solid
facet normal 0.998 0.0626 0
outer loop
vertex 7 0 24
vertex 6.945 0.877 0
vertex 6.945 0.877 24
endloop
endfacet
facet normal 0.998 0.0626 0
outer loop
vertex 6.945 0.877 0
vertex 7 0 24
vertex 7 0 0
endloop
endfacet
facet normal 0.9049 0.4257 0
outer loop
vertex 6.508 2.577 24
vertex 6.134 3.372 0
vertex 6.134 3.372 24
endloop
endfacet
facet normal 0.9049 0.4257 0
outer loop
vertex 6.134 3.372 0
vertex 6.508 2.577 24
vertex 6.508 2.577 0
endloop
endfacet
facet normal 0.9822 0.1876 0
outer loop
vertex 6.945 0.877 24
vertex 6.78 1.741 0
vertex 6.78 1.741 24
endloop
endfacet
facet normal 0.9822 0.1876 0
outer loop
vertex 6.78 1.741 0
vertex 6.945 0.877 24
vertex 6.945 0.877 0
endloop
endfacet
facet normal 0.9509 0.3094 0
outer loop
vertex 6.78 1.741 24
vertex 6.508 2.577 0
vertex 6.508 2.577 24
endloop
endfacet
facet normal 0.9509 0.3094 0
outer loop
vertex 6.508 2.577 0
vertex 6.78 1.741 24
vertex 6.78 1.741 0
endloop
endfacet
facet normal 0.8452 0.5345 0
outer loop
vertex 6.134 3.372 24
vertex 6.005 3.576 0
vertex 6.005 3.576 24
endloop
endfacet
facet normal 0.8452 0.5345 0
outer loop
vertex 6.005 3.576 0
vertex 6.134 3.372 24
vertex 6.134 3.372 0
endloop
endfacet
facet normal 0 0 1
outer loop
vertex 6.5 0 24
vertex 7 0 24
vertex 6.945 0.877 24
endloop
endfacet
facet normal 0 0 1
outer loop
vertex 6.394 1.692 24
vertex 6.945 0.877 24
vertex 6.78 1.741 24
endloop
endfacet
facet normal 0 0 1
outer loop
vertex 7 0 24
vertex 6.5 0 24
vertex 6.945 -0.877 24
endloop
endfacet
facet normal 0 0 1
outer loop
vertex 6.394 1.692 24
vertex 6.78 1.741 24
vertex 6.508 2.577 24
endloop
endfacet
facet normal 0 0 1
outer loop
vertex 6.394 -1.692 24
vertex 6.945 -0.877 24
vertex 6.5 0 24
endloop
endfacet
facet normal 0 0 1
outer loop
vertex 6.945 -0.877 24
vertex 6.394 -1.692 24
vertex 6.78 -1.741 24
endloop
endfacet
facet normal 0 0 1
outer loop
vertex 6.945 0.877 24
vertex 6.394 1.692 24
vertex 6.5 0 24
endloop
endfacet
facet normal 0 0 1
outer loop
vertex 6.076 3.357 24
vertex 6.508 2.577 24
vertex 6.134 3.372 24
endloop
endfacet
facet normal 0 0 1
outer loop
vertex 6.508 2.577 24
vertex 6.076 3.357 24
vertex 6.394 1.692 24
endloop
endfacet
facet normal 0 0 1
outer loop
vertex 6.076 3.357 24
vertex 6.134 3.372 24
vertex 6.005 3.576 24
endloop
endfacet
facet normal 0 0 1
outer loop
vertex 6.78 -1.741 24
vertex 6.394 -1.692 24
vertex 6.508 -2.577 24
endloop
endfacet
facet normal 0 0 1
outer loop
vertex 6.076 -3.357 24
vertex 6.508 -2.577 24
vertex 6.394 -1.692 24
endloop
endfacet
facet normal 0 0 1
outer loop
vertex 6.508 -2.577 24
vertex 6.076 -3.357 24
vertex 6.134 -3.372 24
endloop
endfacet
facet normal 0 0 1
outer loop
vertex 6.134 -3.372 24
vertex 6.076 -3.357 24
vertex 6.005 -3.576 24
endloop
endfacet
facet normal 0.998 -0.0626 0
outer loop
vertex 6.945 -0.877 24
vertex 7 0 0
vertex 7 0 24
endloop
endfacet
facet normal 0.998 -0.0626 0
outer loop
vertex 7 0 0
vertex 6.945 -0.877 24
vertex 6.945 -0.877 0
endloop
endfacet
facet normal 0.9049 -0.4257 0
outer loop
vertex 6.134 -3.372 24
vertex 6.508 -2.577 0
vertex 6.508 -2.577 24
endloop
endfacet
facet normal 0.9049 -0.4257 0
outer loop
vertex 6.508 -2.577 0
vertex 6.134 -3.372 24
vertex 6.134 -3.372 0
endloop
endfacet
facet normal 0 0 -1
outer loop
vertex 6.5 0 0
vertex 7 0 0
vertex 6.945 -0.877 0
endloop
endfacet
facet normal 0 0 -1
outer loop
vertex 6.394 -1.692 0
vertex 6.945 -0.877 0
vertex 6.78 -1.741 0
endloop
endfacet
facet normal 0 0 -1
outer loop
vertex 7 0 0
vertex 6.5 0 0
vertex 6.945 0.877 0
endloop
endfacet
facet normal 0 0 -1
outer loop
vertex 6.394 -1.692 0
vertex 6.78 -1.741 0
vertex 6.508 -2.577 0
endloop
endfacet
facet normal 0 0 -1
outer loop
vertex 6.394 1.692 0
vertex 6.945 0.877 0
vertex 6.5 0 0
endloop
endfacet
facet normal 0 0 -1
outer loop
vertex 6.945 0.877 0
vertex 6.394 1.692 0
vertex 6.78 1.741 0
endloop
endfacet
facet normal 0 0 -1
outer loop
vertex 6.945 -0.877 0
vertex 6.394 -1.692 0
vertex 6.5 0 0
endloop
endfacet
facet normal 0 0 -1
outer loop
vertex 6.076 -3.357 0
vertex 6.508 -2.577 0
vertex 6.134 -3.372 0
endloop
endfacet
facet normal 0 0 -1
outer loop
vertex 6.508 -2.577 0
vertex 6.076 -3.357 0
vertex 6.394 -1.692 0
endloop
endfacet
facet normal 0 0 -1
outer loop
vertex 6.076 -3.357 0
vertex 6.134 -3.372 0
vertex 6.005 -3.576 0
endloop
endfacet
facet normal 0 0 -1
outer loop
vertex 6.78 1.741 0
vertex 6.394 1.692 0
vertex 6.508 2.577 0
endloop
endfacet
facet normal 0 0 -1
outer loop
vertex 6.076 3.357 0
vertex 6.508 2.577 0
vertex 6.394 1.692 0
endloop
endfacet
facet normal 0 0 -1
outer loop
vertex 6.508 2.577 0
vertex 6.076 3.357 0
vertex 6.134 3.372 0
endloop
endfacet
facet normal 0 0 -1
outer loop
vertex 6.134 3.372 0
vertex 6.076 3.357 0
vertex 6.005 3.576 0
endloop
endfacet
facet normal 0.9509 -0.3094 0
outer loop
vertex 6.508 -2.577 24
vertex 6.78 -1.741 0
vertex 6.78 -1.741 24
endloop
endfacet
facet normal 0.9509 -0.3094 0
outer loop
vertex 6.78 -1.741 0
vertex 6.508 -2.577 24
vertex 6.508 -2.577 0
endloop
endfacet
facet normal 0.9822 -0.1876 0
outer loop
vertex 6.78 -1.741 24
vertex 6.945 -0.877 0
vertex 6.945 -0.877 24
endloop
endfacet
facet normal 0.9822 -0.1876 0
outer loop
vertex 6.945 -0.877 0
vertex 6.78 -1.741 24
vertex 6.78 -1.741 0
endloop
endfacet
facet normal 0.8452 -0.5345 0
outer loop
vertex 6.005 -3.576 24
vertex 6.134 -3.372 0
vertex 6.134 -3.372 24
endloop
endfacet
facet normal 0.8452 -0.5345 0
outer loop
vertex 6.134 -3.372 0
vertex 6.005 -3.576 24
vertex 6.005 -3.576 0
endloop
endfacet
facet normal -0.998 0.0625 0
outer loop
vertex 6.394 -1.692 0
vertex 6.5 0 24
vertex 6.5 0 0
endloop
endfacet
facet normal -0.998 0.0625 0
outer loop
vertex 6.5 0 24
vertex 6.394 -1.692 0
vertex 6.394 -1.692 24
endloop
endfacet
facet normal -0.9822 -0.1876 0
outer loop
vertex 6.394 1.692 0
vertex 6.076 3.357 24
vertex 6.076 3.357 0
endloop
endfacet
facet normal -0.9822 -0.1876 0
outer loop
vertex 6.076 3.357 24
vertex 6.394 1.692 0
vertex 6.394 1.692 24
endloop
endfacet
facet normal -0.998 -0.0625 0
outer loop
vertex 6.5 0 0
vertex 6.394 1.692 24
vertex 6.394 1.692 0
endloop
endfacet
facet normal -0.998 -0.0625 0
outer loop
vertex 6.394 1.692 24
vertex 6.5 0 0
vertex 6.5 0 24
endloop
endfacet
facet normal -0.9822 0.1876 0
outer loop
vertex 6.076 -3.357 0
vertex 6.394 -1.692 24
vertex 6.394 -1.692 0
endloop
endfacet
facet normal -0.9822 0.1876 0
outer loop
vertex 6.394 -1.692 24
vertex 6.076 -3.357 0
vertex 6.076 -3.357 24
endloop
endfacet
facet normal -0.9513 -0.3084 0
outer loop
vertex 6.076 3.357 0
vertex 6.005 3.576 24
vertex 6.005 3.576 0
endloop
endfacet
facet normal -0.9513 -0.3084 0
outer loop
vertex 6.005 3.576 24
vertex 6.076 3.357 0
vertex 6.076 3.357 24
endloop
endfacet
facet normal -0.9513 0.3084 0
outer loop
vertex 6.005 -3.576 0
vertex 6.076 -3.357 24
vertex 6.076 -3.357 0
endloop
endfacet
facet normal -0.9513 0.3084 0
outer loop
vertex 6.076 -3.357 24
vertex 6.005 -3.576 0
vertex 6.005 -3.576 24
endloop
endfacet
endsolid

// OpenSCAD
$fn = 50;


difference() {
	union() {
		cylinder(h = 24, r = 7.0000000000);
		translate(v = [-10.0000000000, 0, 0]) {
			cylinder(h = 24, r = 7.0000000000);
		}
	}
	union() {
		cylinder(h = 24, r = 3.2500000000);
		cylinder(h = 24, r = 1.8000000000);
		cylinder(h = 24, r = 1.8000000000);
		cylinder(h = 24, r = 1.8000000000);
		translate(v = [-14.5000000000, 0, 0]) {
			hull() {
				translate(v = [-3.7500000000, 0.0000000000, 0]) {
					cylinder(h = 24, r = 7.5000000000);
				}
				translate(v = [3.7500000000, 0.0000000000, 0]) {
					cylinder(h = 24, r = 7.5000000000);
				}
				translate(v = [-3.7500000000, -0.0000000000, 0]) {
					cylinder(h = 24, r = 7.5000000000);
				}
				translate(v = [3.7500000000, -0.0000000000, 0]) {
					cylinder(h = 24, r = 7.5000000000);
				}
			}
		}
		translate(v = [-7.0000000000, 0, 0.0000000000]) {
			cylinder(h = 24, r = 13.5000000000);
		}
	}
}
